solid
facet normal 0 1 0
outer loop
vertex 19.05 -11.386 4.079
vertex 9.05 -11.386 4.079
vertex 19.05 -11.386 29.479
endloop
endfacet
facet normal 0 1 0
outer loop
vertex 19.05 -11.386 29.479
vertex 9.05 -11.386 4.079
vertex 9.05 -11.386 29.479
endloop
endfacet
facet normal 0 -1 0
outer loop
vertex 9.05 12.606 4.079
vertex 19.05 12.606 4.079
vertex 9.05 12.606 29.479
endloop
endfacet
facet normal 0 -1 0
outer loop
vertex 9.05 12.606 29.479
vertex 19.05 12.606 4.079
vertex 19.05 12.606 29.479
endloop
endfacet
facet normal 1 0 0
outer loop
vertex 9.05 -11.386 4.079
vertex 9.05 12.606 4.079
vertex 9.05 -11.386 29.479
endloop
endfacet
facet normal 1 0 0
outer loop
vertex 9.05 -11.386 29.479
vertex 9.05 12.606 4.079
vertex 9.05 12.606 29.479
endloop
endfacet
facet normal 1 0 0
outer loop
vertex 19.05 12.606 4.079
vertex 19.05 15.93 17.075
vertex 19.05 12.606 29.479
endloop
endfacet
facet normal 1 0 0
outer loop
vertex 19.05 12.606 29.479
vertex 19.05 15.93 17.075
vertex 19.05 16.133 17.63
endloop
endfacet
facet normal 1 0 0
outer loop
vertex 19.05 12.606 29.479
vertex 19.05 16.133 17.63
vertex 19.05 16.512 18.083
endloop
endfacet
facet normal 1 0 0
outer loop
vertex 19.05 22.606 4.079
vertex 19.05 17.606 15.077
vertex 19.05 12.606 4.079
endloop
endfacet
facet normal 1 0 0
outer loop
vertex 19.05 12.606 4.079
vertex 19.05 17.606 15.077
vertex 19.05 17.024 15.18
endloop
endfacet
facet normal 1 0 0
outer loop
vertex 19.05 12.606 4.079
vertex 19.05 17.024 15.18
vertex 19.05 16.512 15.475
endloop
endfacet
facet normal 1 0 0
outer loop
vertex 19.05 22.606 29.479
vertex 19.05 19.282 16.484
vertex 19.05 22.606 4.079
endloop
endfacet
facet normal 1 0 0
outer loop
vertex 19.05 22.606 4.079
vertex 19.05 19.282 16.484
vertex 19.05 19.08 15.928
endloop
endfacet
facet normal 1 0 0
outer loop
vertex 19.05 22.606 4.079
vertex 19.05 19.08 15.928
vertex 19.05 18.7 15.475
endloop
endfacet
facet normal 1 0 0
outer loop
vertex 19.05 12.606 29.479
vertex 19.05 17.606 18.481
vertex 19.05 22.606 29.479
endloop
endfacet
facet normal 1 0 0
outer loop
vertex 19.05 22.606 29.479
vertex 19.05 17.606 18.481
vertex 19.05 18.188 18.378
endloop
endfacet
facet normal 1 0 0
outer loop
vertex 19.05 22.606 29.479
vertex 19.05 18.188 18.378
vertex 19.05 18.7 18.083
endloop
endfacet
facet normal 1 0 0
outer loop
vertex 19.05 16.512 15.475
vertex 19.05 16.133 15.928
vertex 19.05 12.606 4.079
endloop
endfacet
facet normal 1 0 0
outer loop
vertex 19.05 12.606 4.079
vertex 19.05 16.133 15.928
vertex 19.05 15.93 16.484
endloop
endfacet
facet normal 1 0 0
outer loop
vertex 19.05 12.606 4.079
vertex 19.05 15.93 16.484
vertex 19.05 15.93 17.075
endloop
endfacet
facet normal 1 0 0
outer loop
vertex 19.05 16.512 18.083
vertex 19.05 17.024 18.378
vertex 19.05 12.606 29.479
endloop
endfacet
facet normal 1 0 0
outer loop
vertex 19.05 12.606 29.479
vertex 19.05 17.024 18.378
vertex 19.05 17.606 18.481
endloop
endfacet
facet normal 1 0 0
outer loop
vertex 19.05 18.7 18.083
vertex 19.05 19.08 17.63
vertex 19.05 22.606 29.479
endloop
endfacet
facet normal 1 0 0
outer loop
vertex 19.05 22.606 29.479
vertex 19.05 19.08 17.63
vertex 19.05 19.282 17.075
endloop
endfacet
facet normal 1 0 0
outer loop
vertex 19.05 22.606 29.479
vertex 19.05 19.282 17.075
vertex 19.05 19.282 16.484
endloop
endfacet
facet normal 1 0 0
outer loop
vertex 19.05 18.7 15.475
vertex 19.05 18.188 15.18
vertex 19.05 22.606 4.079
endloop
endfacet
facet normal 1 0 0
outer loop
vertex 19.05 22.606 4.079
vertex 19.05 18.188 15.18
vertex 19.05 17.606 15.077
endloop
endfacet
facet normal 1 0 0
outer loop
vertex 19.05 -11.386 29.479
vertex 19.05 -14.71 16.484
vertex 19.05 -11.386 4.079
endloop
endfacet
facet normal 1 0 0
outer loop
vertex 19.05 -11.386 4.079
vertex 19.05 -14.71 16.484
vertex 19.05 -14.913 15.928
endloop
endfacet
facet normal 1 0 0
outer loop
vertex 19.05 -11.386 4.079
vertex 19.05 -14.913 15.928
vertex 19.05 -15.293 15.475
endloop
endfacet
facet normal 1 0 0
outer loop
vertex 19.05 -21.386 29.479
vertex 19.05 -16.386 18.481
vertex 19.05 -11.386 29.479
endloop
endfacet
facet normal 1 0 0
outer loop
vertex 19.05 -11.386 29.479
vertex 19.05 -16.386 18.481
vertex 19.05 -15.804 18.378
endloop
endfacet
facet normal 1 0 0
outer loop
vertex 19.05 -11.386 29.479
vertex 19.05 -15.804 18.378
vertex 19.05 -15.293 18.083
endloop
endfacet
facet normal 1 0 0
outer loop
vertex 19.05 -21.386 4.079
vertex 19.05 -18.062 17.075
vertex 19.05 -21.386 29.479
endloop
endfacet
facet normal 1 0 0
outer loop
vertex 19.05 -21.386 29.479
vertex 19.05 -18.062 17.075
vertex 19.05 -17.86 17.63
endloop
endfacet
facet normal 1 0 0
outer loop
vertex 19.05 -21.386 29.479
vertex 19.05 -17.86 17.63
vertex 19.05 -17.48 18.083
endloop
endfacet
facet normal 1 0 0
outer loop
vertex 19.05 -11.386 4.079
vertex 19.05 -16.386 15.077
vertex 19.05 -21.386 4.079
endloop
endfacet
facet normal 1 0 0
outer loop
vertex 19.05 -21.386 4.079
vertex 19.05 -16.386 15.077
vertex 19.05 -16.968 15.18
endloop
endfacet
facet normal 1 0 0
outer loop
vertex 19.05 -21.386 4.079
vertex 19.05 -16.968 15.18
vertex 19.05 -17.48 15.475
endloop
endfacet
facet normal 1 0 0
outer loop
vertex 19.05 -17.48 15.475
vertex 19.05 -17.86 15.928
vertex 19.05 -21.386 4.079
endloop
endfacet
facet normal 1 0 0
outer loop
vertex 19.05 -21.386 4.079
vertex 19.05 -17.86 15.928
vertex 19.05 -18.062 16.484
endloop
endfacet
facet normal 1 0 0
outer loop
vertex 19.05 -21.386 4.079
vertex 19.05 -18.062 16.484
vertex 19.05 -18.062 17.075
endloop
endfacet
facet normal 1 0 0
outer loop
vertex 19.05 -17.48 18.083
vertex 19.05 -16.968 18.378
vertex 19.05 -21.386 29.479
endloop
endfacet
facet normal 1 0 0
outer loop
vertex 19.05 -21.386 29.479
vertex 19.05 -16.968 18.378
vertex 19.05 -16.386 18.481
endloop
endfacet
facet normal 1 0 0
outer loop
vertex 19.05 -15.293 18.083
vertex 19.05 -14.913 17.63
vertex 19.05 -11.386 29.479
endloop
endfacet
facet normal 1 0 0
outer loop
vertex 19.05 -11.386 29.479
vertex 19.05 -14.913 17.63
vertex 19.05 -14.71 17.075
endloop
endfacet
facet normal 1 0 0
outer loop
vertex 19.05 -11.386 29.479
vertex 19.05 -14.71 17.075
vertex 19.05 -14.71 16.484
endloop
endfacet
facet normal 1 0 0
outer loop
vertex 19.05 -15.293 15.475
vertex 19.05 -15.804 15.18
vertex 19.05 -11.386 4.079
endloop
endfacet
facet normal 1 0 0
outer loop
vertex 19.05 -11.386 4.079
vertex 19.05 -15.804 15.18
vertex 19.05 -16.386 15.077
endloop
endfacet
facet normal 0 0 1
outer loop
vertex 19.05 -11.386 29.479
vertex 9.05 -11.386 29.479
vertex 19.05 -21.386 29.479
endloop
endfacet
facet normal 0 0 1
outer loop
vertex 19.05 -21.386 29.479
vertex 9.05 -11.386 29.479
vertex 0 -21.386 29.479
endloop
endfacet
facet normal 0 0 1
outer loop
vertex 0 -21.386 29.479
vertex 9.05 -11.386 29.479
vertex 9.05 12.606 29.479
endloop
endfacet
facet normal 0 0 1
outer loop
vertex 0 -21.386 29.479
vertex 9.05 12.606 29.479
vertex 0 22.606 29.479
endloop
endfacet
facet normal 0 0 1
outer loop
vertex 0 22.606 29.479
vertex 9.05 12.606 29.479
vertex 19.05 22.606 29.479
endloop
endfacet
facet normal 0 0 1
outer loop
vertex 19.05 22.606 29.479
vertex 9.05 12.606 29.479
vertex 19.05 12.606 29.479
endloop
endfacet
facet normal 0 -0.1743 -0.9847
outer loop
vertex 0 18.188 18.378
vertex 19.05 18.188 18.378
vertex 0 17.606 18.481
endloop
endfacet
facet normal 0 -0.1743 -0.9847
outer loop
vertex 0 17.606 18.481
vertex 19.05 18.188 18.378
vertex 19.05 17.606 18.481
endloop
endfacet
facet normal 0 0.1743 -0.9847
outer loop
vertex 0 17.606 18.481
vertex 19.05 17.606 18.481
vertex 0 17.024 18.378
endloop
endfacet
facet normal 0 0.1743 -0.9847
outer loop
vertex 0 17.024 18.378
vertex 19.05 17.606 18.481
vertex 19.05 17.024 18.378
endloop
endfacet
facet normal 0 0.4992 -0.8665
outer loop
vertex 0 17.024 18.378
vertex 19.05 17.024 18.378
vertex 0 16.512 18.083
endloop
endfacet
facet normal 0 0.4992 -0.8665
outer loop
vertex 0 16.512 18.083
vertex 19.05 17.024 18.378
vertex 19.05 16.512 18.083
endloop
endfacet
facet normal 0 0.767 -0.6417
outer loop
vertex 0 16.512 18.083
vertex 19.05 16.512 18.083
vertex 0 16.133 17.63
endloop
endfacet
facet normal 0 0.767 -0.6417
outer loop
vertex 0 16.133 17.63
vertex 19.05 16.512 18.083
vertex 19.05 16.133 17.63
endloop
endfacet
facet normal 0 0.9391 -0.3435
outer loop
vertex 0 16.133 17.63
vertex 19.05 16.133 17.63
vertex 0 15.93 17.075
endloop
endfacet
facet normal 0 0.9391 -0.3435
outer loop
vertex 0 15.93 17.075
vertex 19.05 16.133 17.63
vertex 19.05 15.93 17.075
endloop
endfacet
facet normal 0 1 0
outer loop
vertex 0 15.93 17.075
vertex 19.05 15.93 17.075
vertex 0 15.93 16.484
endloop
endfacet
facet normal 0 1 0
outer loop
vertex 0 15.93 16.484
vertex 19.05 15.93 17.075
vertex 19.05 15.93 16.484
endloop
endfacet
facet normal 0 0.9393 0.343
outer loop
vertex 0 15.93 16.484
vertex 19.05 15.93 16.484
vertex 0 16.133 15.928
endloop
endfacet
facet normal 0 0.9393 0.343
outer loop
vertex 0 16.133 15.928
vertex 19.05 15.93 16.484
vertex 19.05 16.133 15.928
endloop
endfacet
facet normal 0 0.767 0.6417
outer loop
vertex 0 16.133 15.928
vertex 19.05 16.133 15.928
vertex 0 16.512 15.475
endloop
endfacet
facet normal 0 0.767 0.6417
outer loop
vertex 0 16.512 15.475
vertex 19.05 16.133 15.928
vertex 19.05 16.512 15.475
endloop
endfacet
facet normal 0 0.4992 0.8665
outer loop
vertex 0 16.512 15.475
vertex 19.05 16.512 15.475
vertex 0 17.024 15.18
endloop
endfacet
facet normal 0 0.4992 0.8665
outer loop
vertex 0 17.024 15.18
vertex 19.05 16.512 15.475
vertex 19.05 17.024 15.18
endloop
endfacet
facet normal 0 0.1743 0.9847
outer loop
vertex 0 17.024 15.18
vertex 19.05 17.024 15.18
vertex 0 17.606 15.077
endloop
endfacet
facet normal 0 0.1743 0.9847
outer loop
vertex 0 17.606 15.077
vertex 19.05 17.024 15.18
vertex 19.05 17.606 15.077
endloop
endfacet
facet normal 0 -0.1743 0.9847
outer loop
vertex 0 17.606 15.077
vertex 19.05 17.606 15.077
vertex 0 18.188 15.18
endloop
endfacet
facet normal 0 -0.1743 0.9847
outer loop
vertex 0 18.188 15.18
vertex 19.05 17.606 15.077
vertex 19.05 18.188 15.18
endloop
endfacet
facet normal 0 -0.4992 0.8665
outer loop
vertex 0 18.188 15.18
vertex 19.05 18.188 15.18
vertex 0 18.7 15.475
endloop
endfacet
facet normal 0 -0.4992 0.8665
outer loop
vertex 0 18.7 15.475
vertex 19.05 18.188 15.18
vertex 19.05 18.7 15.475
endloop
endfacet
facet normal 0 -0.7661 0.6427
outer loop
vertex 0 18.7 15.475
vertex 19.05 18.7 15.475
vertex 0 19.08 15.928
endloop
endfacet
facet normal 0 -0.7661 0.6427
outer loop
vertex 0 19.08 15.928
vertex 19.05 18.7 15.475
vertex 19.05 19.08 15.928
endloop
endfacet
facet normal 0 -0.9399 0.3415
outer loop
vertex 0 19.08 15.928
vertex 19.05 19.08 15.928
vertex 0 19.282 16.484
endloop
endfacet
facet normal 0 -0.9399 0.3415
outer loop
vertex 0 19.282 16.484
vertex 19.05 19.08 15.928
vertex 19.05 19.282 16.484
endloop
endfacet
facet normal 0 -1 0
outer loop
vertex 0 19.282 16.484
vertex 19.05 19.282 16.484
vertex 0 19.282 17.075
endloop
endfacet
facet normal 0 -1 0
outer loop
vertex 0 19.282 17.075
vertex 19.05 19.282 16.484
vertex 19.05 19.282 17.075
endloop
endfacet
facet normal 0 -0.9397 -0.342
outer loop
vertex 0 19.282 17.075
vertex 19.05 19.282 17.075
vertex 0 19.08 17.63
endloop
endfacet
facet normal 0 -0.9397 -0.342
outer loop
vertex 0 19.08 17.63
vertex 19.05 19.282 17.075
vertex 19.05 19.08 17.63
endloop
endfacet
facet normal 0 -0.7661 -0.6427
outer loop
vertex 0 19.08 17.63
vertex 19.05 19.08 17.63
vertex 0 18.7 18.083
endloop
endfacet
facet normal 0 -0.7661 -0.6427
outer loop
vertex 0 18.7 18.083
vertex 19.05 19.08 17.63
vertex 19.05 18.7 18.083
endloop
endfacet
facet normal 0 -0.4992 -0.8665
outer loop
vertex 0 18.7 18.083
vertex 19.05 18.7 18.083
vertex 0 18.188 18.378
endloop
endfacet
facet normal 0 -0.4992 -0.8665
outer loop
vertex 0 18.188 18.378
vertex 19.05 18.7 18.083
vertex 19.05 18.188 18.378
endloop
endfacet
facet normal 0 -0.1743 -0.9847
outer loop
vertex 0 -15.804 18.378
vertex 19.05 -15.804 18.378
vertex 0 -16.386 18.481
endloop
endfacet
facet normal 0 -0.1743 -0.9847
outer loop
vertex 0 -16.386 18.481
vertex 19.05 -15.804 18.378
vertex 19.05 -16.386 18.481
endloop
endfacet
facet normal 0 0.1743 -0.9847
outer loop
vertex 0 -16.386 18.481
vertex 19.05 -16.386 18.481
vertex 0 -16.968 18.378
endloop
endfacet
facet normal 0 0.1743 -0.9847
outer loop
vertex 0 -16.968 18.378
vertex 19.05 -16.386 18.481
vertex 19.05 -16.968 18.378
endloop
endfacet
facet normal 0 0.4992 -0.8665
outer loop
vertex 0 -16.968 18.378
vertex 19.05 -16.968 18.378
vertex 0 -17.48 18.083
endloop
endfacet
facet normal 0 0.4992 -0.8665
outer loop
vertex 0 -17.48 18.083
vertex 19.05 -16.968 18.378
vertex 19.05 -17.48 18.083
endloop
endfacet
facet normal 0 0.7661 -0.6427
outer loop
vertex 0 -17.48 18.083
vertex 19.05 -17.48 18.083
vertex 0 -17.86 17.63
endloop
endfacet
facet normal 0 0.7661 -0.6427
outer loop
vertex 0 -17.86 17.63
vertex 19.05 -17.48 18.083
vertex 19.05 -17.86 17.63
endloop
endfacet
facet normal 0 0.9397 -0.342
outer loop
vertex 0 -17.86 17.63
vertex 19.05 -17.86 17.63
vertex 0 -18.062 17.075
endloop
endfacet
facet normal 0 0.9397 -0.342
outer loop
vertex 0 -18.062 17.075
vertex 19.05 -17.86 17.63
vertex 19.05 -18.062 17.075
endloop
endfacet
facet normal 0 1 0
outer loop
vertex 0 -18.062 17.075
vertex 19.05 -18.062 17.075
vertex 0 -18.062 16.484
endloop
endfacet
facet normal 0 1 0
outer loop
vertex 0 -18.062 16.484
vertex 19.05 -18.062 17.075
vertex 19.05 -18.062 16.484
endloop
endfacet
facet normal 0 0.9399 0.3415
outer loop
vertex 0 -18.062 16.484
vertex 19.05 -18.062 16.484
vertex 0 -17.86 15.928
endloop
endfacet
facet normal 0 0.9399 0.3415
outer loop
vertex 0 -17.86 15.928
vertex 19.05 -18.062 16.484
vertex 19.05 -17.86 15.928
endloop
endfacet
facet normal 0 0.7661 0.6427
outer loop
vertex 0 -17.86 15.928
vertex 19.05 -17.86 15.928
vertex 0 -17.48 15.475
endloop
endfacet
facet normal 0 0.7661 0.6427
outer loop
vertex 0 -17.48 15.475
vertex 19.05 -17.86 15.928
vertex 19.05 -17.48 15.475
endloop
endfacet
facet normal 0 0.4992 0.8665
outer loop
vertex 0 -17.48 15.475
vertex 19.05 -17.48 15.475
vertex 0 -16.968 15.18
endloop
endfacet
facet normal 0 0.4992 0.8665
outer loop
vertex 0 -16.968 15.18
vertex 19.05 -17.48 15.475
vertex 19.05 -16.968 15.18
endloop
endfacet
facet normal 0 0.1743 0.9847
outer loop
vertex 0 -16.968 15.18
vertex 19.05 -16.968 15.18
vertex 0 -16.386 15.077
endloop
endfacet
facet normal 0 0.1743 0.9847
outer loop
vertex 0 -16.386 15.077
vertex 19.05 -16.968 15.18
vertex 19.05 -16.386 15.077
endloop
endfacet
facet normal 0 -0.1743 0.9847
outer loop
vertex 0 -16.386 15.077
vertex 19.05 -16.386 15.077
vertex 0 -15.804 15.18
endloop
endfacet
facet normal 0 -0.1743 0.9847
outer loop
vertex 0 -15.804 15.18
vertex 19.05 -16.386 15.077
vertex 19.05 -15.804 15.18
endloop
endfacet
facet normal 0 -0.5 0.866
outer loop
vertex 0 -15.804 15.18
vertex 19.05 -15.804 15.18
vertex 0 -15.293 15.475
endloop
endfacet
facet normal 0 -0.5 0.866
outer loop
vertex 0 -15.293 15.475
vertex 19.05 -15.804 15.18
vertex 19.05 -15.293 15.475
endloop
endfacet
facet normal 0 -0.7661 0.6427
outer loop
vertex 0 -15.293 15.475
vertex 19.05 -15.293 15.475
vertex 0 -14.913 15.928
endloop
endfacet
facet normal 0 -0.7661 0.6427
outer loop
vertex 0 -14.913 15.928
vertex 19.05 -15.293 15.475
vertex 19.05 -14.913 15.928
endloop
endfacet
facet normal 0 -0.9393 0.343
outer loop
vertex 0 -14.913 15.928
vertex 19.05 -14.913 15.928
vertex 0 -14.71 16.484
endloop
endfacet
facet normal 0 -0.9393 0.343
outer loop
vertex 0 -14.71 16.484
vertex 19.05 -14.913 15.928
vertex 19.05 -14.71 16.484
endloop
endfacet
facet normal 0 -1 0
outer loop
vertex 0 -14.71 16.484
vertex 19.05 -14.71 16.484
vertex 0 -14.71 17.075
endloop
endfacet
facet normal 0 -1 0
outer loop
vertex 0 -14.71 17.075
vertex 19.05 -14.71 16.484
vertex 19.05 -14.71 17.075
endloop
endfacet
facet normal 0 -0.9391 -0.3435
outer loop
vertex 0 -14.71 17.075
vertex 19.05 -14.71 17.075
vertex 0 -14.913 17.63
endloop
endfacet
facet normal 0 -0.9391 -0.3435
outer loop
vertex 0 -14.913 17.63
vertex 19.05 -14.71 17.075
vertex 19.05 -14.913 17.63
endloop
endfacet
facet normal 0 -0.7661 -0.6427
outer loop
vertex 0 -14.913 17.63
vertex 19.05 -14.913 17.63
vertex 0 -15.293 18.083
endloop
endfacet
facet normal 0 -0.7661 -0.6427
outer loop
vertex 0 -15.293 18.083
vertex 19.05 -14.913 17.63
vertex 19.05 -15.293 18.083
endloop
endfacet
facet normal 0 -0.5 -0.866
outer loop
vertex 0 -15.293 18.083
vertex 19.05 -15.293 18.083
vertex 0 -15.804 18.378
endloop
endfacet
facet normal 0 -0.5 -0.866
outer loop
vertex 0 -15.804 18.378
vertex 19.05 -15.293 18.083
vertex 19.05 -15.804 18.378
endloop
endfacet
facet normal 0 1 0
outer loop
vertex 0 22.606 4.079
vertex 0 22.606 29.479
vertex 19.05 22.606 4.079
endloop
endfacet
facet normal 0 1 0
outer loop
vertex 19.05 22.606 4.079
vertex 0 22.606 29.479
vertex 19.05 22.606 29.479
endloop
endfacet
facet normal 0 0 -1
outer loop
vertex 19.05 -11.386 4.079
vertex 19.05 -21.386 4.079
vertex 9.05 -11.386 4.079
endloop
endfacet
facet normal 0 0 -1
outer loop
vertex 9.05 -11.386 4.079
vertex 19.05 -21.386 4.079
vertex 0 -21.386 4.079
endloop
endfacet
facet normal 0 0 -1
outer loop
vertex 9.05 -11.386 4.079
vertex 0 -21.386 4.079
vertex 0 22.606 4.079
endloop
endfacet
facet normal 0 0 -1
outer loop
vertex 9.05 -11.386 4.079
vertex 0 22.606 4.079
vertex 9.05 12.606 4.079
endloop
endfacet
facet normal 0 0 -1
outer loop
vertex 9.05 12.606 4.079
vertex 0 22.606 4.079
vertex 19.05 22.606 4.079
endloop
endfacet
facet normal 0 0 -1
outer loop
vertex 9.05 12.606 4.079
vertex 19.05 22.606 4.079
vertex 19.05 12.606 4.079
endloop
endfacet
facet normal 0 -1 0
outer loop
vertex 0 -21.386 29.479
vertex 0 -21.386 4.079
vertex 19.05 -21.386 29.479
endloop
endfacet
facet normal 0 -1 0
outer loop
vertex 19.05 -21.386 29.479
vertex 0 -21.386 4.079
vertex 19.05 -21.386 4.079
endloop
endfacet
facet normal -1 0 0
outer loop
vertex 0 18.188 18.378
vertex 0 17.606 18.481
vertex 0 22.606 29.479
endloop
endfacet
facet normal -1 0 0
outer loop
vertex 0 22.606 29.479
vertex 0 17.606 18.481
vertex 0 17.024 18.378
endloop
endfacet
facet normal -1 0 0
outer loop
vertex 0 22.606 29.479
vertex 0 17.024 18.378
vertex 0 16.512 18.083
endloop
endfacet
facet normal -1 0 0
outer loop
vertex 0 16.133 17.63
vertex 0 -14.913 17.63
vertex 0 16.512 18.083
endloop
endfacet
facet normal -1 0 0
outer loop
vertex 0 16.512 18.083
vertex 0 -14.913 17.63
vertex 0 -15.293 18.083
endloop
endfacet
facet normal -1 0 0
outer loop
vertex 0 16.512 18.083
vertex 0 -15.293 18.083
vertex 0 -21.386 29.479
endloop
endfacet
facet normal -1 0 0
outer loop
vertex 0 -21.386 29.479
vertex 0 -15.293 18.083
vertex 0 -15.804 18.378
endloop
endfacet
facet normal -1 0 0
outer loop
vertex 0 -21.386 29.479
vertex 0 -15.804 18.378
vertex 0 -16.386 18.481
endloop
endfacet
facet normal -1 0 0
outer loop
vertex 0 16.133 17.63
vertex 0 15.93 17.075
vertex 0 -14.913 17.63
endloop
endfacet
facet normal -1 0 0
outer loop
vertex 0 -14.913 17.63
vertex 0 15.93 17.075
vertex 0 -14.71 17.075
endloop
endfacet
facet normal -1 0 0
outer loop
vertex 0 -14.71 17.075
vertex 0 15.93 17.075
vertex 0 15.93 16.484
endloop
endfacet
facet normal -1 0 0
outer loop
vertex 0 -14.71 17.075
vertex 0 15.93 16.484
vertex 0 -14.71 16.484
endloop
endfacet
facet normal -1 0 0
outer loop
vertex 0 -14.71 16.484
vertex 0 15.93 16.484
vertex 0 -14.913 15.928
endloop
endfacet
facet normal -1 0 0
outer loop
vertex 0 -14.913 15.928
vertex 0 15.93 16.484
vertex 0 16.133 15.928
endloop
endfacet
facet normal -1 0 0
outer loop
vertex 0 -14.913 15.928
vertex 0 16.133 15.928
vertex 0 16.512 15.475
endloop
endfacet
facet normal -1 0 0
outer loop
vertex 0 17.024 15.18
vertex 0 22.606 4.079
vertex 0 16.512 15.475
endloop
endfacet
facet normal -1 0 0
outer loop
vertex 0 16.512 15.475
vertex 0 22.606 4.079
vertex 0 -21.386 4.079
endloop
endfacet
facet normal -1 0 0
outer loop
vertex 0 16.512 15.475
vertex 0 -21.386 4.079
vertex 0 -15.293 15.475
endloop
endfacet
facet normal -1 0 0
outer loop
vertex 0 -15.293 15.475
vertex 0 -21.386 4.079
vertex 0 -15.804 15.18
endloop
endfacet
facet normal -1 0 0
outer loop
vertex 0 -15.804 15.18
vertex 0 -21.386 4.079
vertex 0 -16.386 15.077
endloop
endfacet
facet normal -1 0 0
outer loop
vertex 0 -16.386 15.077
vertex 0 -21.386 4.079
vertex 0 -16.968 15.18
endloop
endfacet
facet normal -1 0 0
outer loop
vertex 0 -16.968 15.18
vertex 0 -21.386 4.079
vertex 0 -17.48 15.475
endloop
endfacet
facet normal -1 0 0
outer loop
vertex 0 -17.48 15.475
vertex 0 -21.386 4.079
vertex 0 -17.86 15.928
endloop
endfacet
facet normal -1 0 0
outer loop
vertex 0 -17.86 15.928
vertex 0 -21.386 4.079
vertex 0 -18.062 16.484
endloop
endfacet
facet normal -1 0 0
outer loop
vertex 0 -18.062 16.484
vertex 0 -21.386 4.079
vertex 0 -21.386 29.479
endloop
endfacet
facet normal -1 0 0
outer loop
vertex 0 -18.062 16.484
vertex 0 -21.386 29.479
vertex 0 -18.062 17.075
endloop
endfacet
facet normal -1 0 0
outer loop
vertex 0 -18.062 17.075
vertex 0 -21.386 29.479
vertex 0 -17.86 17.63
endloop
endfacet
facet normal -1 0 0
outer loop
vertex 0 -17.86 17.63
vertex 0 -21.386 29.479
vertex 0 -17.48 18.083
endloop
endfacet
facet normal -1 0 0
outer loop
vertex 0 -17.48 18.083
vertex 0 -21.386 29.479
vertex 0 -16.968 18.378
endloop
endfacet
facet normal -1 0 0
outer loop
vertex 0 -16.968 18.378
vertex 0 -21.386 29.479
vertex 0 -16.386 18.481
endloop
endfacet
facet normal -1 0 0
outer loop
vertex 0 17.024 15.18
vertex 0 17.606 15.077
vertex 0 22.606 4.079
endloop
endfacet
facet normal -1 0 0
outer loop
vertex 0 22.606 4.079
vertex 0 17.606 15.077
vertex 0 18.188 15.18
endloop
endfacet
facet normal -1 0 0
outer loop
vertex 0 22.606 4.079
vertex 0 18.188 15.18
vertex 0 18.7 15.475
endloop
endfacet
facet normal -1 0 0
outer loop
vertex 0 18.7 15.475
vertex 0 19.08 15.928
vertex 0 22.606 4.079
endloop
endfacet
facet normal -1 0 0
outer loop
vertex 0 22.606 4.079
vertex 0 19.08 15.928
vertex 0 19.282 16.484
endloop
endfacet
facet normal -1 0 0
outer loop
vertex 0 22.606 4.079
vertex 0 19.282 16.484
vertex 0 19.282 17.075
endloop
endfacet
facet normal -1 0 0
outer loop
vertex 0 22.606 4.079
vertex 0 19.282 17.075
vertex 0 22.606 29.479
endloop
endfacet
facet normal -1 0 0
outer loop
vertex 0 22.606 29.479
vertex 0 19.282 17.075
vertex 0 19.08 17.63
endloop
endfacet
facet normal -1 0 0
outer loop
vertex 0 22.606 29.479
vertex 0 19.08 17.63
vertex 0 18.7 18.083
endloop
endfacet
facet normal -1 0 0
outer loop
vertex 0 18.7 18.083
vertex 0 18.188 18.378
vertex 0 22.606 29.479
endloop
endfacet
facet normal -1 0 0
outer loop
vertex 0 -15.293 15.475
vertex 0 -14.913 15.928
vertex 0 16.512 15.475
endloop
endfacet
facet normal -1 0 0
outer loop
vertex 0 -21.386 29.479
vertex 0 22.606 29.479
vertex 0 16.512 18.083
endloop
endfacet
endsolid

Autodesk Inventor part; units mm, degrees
ref_plane "YZ Plane" through (0, 0, 0) normal (1, 0, 0) x (0, 1, 0)
ref_plane "XZ Plane" through (0, 0, 0) normal (0, 1, 0) x (-1, 0, 0)
ref_plane "XY Plane" through (0, 0, 0) normal (0, 0, 1) x (1, 0, 0)
sketch "Sketch1" plane through (0, 0, 0) normal (1, 0, 0) x (0, 1, 0)
  line L0 (22.6064, 29.4791) -> (-21.3864, 29.4791)
  line L1 (-21.3864, 29.4791) -> (-21.3864, 4.0791)
  line L2 (-21.3864, 4.0791) -> (22.6064, 4.0791)
  line L3 (22.6064, 4.0791) -> (22.6064, 29.4791)
  point P0 (0, 0)
  dimension "d0" = 43.9928
  dimension "d1" = 25.4
extrude "Extrusion1" add sketch "Sketch1" along normal blind 19.05
sketch "Sketch2" plane through (19.05, 0, 0) normal (1, 0, 0) x (0, 0, -1)
  line L0 (-29.4791, 22.6064) -> (-29.4791, -21.3864) projected
  line L1 (-29.4791, -21.3864) -> (-4.0791, -21.3864) projected
  line L2 (-4.0791, 22.6064) -> (-29.4791, 22.6064) projected
  point P0 (0, 0)
  point P1 (-16.7791, 17.6064)
  point P2 (-16.7791, -16.3864)
  dimension "d4" = 0
  dimension "d5" = 12.7
  dimension "d6" = 5
  dimension "d7" = 5
hole "Hole1" at (19.05, 17.6064, 16.7791) at (19.05, -16.3864, 16.7791) direction (-1, 0, 0) diameter 3.4036 end through all clearance for "Flat Head Machine Screw" size "M3" standard "Ansi Metric M Profile"
sketch "Sketch3" plane through (0, -21.3864, 29.4791) normal (0, 0, 1) x (1, 0, 0)
  line L0 (19.05, 10) -> (9.05, 10)
  line L1 (9.05, 10) -> (9.05, 33.9928)
  line L2 (9.05, 33.9928) -> (19.05, 33.9928)
  line L3 (19.05, 33.9928) -> (19.05, 10)
  line L4 (19.05, 43.9928) -> (19.05, 0) projected
  line L5 (0, 43.9928) -> (19.05, 43.9928) projected
  line L6 (0, 0) -> (19.05, 0) projected
  point P0 (0, 21.3864)
  dimension "d15" = 0
  dimension "d16" = 10
  dimension "d17" = 10
  dimension "d18" = 10
extrude "Extrusion2" cut sketch "Sketch3" against normal blind 60.325
properties part number "LidarV4MountBack"
